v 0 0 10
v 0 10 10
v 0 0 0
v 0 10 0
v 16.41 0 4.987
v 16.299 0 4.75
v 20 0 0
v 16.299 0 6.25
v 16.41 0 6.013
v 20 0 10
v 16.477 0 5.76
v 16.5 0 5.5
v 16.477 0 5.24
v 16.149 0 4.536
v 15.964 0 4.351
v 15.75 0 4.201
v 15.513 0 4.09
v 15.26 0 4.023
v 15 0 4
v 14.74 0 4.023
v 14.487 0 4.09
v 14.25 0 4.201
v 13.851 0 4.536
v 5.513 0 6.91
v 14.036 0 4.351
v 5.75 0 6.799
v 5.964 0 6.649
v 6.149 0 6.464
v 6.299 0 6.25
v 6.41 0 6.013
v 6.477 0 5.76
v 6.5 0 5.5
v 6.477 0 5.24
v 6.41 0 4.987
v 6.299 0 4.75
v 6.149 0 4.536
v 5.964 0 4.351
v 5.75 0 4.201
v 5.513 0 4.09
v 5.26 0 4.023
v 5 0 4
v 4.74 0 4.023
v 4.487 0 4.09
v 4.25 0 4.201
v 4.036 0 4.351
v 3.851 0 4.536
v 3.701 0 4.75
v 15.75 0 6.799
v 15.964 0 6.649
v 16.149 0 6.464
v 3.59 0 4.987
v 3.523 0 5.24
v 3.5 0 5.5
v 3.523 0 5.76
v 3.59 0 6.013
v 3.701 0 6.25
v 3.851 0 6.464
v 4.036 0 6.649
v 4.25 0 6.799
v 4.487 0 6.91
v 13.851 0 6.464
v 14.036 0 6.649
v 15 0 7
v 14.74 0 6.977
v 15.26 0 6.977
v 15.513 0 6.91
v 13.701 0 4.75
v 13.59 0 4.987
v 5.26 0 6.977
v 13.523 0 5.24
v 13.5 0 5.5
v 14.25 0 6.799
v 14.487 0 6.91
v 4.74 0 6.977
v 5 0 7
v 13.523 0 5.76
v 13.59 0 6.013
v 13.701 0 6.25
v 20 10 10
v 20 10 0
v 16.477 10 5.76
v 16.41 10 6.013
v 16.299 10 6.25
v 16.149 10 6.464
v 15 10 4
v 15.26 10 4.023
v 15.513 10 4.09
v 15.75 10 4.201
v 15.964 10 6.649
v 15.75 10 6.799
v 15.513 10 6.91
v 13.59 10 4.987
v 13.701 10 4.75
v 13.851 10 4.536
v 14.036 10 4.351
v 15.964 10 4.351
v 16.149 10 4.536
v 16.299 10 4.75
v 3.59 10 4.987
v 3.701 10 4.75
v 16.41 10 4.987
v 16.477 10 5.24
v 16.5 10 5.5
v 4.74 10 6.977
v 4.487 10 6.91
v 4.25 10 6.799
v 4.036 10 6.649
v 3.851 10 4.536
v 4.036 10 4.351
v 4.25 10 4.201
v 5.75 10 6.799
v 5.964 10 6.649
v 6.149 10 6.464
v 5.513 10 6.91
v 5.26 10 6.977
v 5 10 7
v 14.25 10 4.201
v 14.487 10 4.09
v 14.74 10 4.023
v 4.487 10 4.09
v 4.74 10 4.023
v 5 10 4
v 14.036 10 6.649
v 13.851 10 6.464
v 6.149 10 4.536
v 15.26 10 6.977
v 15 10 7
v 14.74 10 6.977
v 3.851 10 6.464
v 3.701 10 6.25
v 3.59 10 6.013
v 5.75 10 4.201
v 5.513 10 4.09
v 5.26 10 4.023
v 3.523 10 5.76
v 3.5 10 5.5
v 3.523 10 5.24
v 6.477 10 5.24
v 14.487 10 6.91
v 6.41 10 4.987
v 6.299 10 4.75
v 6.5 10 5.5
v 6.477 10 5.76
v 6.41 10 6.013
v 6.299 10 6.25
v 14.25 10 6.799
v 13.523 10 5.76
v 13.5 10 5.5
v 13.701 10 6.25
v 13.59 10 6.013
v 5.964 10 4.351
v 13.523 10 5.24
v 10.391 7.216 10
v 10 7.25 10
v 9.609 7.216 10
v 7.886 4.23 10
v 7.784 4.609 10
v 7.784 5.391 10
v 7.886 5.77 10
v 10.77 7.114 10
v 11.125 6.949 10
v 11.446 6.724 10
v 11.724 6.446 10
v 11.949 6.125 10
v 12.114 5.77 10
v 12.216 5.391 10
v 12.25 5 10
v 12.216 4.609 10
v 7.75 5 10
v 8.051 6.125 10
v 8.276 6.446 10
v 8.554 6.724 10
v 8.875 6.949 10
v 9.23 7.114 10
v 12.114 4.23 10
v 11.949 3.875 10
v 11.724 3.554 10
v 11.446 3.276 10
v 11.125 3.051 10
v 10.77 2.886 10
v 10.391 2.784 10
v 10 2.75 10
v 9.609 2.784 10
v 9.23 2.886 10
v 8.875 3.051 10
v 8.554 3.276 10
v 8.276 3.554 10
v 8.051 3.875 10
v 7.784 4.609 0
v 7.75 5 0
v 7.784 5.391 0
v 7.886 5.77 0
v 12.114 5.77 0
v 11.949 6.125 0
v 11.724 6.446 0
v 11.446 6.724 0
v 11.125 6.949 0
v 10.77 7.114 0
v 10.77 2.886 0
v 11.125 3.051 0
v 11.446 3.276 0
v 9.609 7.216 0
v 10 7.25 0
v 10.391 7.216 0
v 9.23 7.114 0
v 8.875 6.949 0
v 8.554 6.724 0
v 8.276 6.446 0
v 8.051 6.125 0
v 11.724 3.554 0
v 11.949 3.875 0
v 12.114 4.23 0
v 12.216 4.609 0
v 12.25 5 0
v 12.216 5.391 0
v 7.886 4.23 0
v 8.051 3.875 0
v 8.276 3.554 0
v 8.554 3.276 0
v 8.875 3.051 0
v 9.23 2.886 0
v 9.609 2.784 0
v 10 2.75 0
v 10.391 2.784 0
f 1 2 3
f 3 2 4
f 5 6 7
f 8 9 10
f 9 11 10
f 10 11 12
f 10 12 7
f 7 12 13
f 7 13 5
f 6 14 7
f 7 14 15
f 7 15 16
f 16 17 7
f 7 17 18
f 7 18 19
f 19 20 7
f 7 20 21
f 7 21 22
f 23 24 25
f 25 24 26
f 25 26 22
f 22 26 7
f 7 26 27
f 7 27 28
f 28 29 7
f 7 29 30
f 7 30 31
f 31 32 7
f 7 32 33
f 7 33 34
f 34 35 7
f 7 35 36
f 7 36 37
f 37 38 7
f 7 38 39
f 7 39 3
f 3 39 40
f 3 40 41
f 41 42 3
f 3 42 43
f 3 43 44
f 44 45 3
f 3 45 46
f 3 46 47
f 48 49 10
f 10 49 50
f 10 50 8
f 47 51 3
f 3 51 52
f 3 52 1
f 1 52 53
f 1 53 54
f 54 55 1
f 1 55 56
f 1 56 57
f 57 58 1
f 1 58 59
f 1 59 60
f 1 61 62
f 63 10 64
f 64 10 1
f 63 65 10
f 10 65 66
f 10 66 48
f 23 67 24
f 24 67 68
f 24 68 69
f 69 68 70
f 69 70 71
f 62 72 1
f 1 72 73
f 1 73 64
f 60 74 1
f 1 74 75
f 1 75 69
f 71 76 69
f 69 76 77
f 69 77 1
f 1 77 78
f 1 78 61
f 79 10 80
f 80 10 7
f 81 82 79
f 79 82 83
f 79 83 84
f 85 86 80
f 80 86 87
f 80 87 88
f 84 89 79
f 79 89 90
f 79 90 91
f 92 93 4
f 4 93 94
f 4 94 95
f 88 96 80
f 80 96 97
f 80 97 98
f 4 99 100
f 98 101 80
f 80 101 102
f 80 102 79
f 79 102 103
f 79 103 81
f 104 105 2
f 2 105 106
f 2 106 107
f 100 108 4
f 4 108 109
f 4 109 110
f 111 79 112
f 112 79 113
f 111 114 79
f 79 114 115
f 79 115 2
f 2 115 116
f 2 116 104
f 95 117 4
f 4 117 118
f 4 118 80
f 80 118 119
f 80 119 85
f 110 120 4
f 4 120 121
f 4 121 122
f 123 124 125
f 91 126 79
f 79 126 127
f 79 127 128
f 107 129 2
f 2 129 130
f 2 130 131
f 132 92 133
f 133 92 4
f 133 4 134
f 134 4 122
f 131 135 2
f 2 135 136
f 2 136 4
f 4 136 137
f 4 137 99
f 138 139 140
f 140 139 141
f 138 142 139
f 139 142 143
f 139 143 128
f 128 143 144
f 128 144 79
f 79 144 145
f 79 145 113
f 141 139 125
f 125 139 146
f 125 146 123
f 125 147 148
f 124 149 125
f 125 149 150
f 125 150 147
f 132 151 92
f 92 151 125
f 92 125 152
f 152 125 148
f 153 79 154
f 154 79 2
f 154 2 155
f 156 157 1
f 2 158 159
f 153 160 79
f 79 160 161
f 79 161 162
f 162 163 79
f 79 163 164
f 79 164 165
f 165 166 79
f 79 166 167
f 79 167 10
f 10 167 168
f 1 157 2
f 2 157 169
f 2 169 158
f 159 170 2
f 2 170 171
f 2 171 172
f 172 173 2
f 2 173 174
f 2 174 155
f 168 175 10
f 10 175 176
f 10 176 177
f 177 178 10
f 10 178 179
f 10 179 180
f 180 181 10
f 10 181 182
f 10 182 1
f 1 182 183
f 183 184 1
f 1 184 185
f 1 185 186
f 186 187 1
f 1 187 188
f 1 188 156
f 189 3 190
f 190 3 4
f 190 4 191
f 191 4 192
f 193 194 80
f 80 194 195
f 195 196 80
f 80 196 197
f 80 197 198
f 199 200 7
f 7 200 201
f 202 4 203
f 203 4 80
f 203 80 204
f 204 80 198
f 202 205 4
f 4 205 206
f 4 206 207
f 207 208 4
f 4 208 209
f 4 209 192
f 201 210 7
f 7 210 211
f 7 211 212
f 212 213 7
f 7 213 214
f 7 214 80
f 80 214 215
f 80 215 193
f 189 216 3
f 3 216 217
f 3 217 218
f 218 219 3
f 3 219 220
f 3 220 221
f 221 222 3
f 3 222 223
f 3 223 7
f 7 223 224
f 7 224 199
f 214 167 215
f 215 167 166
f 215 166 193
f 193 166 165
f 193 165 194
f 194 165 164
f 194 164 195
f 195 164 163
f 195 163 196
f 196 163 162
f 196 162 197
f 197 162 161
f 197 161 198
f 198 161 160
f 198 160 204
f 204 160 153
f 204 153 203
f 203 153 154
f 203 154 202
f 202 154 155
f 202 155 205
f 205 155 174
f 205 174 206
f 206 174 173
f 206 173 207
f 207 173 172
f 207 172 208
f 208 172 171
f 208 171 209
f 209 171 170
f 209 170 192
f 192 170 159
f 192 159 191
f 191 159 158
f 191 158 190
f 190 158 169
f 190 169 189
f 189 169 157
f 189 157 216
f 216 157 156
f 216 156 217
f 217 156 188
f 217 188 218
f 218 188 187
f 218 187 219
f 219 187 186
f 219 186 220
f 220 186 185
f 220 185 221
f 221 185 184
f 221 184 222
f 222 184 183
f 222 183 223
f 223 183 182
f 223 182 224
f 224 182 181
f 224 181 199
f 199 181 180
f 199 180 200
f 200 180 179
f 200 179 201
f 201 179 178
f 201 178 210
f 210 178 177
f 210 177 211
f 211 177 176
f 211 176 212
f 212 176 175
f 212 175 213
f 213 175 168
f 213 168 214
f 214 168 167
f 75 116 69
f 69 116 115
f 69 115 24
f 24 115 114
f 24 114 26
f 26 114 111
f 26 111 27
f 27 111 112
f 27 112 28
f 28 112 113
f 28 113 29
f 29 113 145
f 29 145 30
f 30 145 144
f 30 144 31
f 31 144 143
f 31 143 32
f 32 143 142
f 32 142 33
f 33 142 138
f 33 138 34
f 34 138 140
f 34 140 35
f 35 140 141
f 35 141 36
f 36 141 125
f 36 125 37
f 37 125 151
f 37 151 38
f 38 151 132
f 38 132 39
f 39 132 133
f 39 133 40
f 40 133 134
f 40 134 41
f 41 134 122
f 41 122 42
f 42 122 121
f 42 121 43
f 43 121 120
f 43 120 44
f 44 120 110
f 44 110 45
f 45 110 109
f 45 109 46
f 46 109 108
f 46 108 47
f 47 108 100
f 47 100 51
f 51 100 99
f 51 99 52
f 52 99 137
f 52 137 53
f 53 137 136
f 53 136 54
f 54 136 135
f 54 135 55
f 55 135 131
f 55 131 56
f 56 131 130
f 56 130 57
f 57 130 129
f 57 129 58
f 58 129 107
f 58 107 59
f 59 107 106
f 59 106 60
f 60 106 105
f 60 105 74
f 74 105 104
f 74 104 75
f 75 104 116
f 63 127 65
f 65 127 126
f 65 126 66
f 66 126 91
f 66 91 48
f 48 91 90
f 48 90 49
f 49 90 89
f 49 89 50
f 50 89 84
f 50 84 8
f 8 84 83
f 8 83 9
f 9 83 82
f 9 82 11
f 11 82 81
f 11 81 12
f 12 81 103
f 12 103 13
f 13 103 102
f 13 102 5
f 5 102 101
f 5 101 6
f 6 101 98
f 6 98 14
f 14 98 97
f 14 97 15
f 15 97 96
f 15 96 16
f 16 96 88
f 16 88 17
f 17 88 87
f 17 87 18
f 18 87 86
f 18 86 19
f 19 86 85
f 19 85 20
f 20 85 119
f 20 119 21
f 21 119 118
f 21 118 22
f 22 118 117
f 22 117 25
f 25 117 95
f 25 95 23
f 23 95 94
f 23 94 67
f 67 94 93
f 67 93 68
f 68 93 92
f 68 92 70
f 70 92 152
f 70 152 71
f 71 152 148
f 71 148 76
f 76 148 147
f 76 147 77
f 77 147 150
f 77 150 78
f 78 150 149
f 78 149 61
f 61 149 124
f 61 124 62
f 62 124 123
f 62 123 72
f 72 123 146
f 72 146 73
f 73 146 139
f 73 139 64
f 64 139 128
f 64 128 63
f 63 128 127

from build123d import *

# Parameters (mm, degrees)
ESQUISSE1_W                  = 20
ESQUISSE1_H                  = 10
BOSS_EXTRU_1_DEPTH           = 10
ESQUISSE2_R                  = 2.25
ENL_V_MAT_EXTRU_1_DEPTH      = 11
ESQUISSE3_R                  = 1.5
ENL_V_MAT_EXTRU_2_DEPTH      = 1
ENL_V_MAT_EXTRU_2_DEPTH_BACK = 11


with BuildPart() as part:
    # Esquisse1 → Boss.-Extru.1 (new body)
    with BuildSketch(Plane.XY):
        with Locations((10, 5)):
            Rectangle(ESQUISSE1_W, ESQUISSE1_H)
    extrude(amount=BOSS_EXTRU_1_DEPTH)

    # Esquisse2 → Enlèv. mat.-Extru.1 (cut, through all)
    with BuildSketch(Plane.XY.offset(10)):
        with Locations((10, 5)):
            Circle(ESQUISSE2_R)
    extrude(amount=-ENL_V_MAT_EXTRU_1_DEPTH, mode=Mode.SUBTRACT)

    # Esquisse3 → Enlèv. mat.-Extru.2 (cut, two sides)
    with BuildSketch(Plane(origin=(0, 10, 0), x_dir=(1, 0, 0), z_dir=(0, 1, 0))) as enl_v_mat_extru_2_sk:
        with Locations((5, -5.5)):
            Circle(ESQUISSE3_R)
        with Locations((15, -5.5)):
            Circle(ESQUISSE3_R)
    extrude(amount=ENL_V_MAT_EXTRU_2_DEPTH, mode=Mode.SUBTRACT)
    extrude(enl_v_mat_extru_2_sk.sketch, amount=-ENL_V_MAT_EXTRU_2_DEPTH_BACK, mode=Mode.SUBTRACT)


solid = part.part
